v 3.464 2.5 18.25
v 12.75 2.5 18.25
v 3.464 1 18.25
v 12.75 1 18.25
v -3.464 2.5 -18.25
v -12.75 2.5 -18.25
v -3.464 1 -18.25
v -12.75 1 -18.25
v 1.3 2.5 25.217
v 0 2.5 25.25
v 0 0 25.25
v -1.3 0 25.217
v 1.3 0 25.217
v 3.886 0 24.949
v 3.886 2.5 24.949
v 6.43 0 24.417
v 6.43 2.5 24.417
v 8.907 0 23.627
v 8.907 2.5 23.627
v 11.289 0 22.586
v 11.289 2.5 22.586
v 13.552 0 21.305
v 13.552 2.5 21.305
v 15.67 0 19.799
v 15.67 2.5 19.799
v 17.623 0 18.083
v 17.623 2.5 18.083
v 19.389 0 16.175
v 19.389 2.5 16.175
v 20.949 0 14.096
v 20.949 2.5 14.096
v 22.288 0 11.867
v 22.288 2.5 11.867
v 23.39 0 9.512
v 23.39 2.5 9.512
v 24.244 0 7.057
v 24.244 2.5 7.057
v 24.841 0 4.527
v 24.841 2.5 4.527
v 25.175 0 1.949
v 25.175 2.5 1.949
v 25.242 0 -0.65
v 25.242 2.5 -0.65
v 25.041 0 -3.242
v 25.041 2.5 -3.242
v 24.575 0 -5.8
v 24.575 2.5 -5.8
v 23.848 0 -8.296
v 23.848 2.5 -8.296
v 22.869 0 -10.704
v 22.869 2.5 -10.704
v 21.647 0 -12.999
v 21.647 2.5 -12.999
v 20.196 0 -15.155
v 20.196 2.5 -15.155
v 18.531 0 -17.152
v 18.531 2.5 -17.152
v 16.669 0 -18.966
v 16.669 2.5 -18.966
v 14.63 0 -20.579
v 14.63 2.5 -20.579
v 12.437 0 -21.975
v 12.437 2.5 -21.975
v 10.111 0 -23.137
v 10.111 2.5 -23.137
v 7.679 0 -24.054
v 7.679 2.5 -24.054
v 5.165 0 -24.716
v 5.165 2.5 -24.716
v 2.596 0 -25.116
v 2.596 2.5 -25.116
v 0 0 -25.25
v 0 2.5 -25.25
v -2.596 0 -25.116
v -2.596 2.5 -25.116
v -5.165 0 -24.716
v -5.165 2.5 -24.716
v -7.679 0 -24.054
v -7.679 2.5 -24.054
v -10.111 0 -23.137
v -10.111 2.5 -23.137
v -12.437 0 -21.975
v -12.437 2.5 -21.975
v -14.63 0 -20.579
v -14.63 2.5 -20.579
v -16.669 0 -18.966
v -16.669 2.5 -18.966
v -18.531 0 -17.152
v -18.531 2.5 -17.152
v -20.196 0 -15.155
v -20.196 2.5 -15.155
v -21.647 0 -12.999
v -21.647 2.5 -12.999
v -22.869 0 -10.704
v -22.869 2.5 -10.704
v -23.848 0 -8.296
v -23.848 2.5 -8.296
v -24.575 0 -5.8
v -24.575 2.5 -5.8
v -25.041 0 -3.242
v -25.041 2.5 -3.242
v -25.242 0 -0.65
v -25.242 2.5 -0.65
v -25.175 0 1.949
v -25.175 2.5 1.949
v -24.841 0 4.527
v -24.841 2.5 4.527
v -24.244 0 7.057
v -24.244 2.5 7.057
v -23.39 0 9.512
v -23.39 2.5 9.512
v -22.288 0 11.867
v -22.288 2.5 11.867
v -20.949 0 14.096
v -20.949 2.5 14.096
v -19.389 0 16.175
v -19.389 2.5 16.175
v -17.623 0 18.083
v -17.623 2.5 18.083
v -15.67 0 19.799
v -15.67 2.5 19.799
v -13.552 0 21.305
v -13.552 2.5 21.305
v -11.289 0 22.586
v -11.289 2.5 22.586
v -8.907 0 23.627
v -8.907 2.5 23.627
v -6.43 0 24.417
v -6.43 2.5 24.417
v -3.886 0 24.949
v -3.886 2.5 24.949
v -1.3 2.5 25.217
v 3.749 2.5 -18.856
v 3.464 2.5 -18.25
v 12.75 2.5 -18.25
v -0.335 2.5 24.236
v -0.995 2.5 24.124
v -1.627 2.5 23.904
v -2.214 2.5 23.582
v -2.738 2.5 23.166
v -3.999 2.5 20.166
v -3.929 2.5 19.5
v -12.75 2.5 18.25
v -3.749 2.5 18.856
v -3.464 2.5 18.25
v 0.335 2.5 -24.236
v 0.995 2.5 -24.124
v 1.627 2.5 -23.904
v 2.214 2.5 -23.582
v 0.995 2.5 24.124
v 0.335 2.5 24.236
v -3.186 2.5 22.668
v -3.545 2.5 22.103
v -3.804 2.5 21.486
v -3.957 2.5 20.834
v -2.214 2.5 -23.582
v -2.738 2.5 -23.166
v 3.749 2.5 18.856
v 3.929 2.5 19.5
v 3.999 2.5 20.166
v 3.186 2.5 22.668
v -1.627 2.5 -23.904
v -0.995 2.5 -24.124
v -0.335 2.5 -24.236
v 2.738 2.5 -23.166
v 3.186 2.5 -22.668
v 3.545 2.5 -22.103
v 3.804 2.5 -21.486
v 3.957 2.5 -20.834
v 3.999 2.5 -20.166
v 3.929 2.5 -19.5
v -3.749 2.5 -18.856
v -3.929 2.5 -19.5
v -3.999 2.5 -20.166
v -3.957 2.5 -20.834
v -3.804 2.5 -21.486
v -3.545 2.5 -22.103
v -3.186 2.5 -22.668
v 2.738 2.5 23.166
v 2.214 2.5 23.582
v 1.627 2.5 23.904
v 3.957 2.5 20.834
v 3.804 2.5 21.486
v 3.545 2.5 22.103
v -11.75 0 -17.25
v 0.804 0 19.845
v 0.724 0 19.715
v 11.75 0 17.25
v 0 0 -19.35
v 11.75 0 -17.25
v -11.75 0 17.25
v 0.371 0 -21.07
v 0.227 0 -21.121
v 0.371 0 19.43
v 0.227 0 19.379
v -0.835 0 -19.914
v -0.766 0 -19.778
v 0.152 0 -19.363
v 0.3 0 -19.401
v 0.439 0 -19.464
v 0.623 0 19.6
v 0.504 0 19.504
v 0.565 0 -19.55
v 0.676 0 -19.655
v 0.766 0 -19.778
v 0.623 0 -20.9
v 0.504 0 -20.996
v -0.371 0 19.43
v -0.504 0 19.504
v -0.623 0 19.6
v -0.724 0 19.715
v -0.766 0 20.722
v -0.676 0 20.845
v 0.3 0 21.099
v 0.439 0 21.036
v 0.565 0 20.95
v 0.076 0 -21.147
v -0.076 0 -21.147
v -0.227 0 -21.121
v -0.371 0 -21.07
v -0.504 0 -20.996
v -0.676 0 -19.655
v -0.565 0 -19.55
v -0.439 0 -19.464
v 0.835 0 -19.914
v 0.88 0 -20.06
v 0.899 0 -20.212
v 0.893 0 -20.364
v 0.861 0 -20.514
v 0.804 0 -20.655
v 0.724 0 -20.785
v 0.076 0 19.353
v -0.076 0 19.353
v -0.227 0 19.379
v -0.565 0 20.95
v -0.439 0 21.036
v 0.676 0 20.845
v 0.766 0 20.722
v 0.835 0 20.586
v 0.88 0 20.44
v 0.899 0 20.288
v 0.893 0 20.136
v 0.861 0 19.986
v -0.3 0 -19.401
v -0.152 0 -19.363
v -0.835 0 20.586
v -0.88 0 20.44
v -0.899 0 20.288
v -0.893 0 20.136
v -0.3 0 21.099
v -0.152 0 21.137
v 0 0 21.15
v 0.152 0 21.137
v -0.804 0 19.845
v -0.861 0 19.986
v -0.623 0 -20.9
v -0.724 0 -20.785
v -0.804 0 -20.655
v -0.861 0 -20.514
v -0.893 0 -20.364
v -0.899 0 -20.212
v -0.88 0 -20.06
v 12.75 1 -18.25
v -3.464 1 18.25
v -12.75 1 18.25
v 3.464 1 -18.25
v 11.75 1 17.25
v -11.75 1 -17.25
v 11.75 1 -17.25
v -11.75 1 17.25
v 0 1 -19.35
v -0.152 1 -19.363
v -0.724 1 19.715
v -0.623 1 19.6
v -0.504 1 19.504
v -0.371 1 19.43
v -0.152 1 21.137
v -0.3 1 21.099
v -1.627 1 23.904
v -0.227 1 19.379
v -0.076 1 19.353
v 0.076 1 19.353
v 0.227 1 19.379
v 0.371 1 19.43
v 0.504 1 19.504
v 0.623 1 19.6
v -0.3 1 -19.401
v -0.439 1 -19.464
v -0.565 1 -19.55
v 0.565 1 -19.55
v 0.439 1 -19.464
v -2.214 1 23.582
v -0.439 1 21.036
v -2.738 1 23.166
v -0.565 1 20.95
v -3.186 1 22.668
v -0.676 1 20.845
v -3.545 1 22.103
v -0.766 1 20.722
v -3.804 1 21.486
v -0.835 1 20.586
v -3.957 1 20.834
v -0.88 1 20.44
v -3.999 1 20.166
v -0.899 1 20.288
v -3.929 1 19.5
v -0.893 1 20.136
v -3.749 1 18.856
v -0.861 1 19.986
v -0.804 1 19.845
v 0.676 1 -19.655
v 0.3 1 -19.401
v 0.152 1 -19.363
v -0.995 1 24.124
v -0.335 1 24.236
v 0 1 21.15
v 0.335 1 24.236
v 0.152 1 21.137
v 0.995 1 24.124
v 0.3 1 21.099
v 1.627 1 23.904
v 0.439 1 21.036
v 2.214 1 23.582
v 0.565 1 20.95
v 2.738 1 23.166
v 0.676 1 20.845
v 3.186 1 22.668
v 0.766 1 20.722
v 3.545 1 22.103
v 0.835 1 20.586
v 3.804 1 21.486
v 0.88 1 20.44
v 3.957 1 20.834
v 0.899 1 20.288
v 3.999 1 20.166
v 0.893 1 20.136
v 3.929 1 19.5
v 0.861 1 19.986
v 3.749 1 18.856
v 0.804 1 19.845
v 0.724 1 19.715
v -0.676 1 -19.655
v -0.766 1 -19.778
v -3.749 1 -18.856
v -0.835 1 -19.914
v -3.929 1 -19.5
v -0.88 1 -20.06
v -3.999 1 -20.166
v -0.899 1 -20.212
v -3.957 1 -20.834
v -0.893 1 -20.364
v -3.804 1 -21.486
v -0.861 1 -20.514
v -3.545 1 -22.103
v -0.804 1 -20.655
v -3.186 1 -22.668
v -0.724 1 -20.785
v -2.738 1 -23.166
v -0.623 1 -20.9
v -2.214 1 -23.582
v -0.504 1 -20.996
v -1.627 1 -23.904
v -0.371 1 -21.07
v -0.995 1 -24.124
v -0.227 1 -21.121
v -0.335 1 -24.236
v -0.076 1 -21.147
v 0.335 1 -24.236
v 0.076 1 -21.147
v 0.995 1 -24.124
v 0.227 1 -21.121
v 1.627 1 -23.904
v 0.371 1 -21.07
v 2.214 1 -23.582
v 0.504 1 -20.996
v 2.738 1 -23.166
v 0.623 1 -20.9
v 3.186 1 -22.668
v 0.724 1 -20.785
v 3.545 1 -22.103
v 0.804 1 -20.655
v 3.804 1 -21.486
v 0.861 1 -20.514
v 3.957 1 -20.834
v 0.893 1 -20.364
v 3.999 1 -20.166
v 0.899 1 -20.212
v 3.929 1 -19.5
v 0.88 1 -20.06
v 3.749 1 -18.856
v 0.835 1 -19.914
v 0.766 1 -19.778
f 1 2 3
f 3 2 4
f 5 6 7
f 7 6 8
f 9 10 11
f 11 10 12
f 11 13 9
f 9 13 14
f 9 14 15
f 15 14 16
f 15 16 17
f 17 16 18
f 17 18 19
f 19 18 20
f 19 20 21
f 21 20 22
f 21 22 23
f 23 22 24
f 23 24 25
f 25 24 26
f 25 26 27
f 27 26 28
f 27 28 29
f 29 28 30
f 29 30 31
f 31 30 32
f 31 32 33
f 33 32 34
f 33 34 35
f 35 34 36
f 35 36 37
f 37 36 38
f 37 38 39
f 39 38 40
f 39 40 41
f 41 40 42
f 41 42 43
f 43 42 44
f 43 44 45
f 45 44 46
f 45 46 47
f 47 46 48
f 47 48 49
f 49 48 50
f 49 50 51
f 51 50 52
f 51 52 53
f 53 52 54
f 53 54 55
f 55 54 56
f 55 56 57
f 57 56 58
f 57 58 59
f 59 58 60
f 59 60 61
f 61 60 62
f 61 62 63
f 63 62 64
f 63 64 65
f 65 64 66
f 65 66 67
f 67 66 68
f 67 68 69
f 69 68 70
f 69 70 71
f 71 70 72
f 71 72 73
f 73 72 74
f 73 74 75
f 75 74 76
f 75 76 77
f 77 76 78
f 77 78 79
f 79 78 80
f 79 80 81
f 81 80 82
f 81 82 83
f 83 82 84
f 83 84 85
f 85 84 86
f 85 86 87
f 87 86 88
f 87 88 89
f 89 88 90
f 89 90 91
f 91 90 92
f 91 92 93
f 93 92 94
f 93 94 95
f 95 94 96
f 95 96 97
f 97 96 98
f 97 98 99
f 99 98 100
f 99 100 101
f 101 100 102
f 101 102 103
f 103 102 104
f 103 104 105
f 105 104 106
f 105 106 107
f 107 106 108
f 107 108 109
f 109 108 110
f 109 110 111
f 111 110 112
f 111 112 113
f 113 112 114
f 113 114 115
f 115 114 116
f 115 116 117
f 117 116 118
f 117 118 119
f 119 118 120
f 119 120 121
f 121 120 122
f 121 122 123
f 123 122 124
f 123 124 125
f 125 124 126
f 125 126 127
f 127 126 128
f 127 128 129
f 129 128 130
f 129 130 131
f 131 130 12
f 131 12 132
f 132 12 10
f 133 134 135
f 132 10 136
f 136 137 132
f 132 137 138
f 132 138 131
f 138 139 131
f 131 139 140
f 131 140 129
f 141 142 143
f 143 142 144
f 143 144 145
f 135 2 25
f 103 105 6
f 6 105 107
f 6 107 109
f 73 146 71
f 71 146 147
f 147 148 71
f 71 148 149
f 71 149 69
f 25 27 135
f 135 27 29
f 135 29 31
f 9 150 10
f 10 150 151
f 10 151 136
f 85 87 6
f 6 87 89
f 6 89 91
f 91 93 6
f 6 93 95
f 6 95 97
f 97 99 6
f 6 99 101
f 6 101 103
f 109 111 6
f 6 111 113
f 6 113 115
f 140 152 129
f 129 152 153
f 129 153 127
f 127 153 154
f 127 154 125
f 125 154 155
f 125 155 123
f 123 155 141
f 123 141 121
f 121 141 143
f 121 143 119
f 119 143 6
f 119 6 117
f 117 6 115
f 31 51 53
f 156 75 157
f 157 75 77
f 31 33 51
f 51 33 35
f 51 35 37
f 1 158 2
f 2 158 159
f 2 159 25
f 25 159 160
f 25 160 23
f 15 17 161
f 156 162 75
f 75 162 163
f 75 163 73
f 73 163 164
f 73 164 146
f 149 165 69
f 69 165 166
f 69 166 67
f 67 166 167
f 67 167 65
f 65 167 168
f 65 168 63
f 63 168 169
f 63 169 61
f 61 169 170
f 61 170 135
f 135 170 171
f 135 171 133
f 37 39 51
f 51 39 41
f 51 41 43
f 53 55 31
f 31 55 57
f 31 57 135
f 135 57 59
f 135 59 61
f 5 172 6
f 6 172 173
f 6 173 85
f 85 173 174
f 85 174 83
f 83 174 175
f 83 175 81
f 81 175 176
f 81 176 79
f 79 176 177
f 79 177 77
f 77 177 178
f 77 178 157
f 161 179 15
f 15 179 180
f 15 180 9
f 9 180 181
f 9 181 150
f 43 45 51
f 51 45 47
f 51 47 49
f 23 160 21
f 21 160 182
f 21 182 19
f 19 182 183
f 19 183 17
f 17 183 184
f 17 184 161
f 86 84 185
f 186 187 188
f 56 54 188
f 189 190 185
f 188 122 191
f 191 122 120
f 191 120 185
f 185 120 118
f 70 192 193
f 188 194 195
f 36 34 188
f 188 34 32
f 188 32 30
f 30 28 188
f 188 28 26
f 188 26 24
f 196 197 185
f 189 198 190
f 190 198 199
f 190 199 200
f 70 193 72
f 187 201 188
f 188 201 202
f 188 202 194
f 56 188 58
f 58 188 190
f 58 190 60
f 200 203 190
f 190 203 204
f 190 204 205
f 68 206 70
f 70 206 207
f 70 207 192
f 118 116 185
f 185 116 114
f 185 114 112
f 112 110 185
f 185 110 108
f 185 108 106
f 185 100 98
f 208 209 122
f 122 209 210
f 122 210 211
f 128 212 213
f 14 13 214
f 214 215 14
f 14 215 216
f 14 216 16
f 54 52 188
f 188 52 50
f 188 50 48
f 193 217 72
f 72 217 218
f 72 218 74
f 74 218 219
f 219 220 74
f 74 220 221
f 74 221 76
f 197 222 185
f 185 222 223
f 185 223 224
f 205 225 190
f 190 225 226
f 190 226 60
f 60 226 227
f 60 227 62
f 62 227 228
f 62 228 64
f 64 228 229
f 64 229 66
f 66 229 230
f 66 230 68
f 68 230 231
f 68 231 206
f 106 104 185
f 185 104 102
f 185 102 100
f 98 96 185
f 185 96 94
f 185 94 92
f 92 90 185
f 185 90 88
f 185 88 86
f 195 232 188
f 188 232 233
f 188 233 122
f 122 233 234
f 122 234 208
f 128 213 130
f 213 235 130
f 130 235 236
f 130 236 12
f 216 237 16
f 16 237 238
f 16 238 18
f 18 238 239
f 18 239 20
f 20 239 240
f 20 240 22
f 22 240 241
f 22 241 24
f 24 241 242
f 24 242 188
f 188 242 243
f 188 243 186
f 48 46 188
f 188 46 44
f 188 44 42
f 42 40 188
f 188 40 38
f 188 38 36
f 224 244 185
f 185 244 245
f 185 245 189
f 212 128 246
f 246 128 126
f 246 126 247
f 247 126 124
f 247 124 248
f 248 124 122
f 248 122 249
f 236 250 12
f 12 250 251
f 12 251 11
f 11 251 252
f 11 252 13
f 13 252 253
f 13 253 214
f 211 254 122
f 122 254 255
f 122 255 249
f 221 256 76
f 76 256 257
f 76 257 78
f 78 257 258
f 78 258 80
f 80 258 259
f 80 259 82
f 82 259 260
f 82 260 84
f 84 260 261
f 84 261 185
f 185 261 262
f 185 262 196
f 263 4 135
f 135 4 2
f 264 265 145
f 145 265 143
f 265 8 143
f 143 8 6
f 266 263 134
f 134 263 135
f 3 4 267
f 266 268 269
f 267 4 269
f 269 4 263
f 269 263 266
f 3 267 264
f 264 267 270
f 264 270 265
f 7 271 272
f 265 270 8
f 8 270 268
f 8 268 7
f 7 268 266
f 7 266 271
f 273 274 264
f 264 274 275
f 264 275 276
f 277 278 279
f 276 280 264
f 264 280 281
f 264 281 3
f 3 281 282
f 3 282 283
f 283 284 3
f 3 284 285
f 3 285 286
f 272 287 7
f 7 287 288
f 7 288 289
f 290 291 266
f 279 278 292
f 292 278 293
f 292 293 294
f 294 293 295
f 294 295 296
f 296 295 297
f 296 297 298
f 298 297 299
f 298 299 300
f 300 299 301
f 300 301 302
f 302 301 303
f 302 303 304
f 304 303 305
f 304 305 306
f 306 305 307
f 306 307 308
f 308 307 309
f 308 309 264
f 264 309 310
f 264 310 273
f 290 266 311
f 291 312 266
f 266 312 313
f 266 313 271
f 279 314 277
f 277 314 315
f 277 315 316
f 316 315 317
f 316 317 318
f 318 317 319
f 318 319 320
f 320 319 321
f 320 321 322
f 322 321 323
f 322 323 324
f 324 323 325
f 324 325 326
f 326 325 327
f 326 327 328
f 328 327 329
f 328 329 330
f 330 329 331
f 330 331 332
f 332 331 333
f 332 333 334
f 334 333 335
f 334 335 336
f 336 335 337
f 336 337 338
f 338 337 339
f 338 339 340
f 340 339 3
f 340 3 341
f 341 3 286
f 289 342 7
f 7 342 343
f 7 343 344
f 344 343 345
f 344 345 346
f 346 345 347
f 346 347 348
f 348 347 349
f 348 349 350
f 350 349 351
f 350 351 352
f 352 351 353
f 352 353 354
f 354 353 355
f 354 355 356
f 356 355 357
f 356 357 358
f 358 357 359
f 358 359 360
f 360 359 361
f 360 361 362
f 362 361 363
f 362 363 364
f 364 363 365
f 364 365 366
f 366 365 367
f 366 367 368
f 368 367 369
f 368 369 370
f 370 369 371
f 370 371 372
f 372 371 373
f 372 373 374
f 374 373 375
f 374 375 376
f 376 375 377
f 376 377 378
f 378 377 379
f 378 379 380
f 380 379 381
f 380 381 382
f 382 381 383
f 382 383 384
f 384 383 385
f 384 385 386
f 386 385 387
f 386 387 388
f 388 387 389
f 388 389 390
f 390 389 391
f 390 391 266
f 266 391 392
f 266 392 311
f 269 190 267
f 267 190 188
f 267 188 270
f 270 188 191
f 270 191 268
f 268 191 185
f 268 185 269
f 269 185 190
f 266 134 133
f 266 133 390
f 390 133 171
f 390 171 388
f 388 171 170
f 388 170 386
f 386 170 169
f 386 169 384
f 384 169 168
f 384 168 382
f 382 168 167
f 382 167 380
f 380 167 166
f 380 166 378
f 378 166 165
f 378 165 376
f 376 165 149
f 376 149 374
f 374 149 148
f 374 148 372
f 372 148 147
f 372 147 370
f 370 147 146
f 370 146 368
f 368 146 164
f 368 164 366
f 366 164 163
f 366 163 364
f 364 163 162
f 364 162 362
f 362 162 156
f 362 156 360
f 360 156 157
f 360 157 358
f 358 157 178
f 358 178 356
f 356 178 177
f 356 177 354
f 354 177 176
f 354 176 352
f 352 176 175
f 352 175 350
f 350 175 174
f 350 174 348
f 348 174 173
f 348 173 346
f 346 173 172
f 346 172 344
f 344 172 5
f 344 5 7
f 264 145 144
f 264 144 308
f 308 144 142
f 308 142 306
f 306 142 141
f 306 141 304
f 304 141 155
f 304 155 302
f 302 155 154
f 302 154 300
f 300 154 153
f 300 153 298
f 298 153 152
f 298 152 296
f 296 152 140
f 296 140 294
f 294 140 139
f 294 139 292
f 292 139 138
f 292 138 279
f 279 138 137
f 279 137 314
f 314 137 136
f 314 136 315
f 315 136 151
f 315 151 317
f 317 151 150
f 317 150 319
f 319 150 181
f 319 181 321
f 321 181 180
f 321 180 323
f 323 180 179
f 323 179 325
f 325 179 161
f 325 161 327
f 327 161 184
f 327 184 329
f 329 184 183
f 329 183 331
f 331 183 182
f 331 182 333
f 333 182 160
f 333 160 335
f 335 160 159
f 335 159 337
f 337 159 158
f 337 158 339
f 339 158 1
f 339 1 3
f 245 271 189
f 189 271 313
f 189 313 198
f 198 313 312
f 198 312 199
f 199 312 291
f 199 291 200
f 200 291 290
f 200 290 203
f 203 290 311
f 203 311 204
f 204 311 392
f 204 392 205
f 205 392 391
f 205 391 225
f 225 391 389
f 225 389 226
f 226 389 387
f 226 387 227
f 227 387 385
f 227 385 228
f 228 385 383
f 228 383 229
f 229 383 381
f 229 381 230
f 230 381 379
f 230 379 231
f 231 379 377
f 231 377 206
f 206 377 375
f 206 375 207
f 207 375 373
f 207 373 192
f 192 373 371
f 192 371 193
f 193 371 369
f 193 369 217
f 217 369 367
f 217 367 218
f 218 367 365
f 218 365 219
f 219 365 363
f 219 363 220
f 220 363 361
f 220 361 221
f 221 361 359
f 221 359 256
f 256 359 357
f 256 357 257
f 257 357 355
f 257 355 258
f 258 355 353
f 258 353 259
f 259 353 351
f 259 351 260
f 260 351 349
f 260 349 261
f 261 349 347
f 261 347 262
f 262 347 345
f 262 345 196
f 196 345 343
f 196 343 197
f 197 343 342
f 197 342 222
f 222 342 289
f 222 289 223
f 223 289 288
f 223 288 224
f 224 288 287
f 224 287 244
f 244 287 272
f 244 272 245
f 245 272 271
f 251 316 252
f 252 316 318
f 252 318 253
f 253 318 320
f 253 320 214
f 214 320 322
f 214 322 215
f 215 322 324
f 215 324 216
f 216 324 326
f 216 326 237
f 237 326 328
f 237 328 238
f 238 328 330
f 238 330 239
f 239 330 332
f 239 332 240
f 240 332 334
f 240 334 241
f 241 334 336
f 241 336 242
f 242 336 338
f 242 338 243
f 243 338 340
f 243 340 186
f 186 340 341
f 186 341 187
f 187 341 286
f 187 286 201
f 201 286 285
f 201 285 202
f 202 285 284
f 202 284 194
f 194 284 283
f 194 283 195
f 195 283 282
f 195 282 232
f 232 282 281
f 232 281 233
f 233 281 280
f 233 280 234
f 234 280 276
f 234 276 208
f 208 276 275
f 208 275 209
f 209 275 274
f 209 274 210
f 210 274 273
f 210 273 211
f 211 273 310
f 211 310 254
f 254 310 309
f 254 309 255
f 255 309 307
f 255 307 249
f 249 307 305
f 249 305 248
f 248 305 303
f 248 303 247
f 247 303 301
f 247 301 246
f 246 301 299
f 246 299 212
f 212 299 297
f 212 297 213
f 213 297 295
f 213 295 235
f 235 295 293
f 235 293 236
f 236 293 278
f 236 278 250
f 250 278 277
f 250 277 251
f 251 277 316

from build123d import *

# Parameters (mm, degrees)
SKETCH1_R           = 25.25
BOSS_EXTRUDE1_DEPTH = 2.5
SKETCH2_W           = 25.5
SKETCH2_H           = 36.5
CUT_EXTRUDE1_DEPTH  = 1.5
SKETCH3_W           = 23.5
SKETCH3_H           = 34.5
CUT_EXTRUDE2_DEPTH  = 1.2
SKETCH4_R           = 4
CUT_EXTRUDE3_DEPTH  = 1.5
SKETCH5_R           = 0.9
CUT_EXTRUDE4_DEPTH  = 2


with BuildPart() as part:
    # Sketch1 → Boss-Extrude1 (new body)
    with BuildSketch(Plane(origin=(0, 0, 0), x_dir=(1, 0, 0), z_dir=(0, 1, 0))):
        Circle(SKETCH1_R)
    extrude(amount=BOSS_EXTRUDE1_DEPTH)

    # Sketch2 → Cut-Extrude1 (cut)
    with BuildSketch(Plane(origin=(0, 2.5, 0), x_dir=(1, 0, 0), z_dir=(0, 1, 0))):
        Rectangle(SKETCH2_W, SKETCH2_H)
    extrude(amount=-CUT_EXTRUDE1_DEPTH, mode=Mode.SUBTRACT)

    # Sketch3 → Cut-Extrude2 (cut)
    with BuildSketch(Plane(origin=(0, 1, 0), x_dir=(1, 0, 0), z_dir=(0, 1, 0))):
        Rectangle(SKETCH3_W, SKETCH3_H)
    extrude(amount=-CUT_EXTRUDE2_DEPTH, mode=Mode.SUBTRACT)

    # Sketch4 → Cut-Extrude3 (cut)
    with BuildSketch(Plane(origin=(0, 2.5, 0), x_dir=(1, 0, 0), z_dir=(0, 1, 0))):
        with Locations((0, 20.25)):
            Circle(SKETCH4_R)
        with Locations((0, -20.25)):
            Circle(SKETCH4_R)
    extrude(amount=-CUT_EXTRUDE3_DEPTH, mode=Mode.SUBTRACT)

    # Sketch5 → Cut-Extrude4 (cut, through all)
    with BuildSketch(Plane(origin=(0, 1, 0), x_dir=(1, 0, 0), z_dir=(0, 1, 0))):
        with Locations((0, 20.25)):
            Circle(SKETCH5_R)
        with Locations((0, -20.25)):
            Circle(SKETCH5_R)
    extrude(amount=-CUT_EXTRUDE4_DEPTH, mode=Mode.SUBTRACT)


solid = part.part
